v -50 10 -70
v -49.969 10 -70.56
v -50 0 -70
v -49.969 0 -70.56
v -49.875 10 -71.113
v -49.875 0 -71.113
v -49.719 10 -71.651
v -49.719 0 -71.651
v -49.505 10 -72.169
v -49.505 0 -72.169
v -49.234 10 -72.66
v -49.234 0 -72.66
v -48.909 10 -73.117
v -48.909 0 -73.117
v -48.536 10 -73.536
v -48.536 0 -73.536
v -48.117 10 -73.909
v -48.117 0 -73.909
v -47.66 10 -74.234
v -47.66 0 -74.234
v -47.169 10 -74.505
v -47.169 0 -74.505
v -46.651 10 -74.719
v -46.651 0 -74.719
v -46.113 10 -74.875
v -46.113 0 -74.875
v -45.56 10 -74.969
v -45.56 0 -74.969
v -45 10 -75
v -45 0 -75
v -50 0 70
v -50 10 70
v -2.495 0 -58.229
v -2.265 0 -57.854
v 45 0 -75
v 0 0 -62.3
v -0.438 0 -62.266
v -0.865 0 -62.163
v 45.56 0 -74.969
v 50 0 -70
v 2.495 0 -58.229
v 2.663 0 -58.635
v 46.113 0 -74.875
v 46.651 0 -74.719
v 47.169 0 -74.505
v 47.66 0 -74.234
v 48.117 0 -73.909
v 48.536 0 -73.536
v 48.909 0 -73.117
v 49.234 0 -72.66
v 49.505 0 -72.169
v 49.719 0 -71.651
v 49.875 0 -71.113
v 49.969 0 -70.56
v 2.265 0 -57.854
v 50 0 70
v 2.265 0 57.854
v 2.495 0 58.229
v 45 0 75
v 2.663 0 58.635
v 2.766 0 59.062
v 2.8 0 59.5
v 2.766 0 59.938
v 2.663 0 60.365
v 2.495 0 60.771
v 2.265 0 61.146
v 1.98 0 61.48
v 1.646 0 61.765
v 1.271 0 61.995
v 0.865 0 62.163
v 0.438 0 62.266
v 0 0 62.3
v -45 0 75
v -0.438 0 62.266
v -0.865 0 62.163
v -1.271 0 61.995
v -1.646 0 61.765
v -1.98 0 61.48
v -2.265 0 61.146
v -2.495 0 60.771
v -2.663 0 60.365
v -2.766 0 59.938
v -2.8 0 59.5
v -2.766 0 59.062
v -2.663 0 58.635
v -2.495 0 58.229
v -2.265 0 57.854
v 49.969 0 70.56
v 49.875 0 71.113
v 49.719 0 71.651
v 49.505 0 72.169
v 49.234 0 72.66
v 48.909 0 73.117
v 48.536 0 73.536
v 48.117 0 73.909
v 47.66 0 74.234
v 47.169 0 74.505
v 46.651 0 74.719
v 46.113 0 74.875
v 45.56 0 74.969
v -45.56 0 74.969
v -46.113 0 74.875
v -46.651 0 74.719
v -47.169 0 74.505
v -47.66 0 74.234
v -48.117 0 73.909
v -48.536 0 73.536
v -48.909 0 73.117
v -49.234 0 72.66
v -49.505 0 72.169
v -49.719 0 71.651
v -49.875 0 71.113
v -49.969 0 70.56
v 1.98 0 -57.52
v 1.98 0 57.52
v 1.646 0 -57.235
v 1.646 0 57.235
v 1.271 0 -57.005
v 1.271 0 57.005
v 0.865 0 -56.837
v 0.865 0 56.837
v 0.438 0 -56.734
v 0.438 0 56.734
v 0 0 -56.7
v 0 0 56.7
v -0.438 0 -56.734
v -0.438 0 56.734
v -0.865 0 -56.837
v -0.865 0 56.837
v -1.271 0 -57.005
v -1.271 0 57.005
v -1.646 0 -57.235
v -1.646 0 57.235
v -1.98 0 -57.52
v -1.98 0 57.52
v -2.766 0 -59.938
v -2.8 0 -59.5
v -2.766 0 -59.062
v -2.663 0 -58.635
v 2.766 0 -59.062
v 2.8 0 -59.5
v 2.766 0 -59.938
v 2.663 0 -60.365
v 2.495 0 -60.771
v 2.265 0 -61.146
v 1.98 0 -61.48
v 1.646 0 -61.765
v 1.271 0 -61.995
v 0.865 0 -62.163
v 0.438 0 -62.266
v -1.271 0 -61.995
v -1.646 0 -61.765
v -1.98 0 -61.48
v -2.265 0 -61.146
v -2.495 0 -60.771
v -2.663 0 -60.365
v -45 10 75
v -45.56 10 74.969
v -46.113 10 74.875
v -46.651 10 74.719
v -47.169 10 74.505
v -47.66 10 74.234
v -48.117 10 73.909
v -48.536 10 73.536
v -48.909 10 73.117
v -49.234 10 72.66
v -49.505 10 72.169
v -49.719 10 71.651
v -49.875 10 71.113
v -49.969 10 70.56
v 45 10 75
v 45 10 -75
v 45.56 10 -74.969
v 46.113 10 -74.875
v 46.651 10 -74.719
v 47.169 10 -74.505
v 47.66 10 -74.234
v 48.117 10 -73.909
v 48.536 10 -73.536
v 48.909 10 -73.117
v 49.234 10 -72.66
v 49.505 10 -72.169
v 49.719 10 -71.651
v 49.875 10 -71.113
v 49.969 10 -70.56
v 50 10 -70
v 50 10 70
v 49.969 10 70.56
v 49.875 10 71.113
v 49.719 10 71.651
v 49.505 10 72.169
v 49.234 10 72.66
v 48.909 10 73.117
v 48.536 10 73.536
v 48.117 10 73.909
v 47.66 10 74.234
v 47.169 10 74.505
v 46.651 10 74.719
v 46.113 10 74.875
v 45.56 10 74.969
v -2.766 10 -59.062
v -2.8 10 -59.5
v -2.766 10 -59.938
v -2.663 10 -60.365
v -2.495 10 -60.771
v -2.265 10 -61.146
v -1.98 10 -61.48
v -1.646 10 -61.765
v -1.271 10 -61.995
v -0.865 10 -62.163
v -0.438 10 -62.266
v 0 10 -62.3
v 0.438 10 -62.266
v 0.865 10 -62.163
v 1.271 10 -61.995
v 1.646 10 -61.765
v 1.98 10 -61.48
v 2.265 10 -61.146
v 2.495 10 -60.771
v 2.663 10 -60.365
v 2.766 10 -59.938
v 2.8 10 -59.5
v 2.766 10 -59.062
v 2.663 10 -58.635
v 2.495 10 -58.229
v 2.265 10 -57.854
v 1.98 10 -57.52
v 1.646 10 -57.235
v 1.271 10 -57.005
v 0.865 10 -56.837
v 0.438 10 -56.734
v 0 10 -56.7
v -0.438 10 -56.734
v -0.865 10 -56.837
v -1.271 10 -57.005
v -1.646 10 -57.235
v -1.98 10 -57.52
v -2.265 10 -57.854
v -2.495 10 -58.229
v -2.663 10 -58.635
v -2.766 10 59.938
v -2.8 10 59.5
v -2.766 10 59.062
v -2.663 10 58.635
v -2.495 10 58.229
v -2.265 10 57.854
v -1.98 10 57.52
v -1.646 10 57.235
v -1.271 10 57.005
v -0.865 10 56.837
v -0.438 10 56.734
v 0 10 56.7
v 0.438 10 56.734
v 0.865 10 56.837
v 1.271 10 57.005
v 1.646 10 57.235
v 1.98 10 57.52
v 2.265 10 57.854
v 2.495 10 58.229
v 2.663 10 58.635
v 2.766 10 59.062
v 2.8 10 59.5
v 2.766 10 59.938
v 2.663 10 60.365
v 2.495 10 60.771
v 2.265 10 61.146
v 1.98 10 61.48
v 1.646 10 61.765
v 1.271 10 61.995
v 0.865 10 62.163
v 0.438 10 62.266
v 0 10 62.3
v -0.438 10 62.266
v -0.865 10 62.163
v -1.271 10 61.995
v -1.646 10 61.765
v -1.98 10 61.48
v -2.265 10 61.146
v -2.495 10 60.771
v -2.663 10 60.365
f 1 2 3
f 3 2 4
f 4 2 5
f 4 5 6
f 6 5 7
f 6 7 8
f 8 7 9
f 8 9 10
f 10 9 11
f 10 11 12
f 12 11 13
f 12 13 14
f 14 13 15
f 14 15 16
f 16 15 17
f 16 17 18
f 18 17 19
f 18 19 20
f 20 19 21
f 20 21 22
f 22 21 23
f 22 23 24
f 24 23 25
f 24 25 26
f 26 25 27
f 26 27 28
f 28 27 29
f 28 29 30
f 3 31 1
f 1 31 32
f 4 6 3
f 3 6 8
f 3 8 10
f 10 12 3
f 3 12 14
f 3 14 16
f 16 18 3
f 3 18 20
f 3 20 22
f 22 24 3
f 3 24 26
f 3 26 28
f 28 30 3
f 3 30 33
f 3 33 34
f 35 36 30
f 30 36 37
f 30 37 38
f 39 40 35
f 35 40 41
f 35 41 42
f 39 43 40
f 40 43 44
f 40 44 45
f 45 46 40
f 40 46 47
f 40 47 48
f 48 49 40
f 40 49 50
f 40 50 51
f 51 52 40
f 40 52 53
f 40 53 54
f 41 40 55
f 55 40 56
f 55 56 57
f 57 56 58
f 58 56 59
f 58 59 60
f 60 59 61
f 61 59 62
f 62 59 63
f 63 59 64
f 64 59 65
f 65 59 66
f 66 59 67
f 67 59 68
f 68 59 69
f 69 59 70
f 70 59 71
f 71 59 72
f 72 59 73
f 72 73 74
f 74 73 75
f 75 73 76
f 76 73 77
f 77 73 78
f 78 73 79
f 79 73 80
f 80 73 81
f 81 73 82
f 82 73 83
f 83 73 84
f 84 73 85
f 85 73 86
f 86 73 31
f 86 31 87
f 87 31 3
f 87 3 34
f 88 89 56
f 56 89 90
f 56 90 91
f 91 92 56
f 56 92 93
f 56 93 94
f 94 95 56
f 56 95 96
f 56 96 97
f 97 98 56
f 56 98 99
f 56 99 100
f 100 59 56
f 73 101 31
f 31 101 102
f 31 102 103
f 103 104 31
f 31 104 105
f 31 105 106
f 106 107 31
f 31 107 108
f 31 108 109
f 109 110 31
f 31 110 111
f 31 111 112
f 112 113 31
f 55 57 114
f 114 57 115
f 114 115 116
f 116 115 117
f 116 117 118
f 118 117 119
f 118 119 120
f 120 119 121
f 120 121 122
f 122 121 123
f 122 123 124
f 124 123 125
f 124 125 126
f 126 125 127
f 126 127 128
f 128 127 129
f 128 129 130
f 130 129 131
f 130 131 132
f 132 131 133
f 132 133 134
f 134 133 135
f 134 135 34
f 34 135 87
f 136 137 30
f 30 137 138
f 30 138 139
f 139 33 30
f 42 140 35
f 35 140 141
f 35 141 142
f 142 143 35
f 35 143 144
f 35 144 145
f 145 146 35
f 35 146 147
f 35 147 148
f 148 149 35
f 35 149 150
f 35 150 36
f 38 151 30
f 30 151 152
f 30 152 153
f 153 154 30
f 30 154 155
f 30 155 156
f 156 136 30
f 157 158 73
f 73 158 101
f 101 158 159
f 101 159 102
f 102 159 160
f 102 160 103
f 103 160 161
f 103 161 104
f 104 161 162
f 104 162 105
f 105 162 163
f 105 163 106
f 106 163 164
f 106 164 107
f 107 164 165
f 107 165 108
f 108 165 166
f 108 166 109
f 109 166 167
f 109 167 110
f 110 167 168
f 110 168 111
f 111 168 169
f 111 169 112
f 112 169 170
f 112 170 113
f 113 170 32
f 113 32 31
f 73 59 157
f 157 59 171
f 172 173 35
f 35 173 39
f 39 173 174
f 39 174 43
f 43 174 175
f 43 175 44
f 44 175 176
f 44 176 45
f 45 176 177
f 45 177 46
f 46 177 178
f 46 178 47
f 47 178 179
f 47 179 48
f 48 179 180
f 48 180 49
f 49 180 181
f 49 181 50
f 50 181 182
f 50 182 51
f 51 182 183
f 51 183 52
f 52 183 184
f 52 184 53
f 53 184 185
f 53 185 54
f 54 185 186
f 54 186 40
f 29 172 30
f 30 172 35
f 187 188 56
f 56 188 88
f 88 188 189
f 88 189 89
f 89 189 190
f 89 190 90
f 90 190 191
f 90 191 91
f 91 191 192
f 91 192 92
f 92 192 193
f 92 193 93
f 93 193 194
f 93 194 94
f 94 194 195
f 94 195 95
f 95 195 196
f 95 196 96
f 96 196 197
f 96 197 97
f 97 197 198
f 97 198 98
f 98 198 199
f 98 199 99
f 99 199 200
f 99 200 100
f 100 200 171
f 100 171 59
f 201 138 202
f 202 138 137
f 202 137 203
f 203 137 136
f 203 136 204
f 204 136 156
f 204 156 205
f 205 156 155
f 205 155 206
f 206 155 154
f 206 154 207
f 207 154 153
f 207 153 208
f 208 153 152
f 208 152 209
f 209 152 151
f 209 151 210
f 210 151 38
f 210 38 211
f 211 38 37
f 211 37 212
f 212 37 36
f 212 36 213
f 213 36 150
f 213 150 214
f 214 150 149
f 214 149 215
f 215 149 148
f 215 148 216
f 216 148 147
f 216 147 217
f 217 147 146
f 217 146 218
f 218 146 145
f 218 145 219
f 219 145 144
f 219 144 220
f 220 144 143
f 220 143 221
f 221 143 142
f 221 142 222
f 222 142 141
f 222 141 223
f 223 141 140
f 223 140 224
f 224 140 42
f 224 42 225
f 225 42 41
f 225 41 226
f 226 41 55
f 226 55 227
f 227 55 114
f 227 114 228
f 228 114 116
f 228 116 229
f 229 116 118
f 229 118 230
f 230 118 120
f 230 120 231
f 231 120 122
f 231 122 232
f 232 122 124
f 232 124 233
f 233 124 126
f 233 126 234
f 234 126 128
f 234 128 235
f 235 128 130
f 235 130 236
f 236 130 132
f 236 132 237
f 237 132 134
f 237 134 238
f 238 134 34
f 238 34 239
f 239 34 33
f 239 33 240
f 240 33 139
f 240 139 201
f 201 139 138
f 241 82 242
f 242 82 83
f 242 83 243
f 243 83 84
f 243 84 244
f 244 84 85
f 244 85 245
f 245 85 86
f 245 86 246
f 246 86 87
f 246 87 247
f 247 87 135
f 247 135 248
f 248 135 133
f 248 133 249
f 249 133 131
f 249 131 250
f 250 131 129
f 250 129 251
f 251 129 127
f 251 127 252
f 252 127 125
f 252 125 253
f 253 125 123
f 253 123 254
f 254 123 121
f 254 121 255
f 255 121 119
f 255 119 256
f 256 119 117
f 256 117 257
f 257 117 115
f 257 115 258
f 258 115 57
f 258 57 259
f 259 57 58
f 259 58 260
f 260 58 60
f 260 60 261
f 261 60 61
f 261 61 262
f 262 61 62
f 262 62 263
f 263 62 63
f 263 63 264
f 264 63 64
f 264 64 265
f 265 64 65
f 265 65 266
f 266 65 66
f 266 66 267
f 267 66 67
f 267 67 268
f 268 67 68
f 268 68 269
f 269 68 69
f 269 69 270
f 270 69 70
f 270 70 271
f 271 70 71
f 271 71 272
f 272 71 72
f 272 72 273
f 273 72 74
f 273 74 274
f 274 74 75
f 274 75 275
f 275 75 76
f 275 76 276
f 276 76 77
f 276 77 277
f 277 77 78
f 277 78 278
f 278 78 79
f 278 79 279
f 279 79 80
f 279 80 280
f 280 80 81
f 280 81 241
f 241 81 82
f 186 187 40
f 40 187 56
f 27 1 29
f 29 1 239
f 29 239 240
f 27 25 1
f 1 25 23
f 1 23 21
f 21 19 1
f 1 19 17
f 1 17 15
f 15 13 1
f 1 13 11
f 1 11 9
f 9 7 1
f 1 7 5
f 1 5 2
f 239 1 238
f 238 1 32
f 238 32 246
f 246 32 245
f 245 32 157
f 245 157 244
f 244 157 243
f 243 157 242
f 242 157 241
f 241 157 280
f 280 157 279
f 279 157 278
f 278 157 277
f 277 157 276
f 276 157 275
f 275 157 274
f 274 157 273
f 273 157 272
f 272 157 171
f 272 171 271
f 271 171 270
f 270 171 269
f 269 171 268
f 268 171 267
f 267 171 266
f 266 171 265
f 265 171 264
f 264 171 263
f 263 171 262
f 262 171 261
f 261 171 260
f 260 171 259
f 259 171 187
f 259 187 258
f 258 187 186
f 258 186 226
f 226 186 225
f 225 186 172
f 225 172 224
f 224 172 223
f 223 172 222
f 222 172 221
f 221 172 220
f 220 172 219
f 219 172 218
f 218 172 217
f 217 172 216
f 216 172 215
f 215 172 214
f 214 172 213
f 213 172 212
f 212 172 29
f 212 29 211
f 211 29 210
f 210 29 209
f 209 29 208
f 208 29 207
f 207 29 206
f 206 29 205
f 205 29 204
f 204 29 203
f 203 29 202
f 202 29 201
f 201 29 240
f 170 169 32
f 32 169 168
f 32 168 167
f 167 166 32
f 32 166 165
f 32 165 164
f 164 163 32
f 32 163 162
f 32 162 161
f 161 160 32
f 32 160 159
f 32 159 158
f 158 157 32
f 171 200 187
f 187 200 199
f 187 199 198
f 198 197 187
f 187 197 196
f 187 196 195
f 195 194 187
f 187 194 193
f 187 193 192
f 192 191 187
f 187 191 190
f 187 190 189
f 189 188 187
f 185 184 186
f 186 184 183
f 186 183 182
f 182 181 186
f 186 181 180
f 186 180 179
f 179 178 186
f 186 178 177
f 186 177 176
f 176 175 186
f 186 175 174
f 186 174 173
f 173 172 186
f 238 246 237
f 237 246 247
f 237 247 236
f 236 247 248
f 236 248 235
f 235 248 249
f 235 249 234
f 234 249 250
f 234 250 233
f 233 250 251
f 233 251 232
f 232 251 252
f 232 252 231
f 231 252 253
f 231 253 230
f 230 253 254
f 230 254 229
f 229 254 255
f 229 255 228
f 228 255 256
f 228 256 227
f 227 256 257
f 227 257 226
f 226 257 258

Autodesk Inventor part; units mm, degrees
ref_plane "YZ Plane" through (0, 0, 0) normal (1, 0, 0) x (0, 1, 0)
ref_plane "XZ Plane" through (0, 0, 0) normal (0, 1, 0) x (-1, 0, 0)
ref_plane "XY Plane" through (0, 0, 0) normal (0, 0, 1) x (1, 0, 0)
sketch "Sketch1" plane through (0, 0, 0) normal (0, 1, 0) x (-1, 0, 0)
  line L0 (50, 75) -> (-50, 75)
  line L1 (-50, 75) -> (-50, -75)
  line L2 (-50, -75) -> (50, -75)
  line L3 (50, -75) -> (50, 75)
  line L4 (50, 75) -> (-50, -75) construction
  line L5 (-50, 75) -> (50, -75) construction
  circle A0 centre (0, 59.5) radius 2.8
  line L6 (0, 0) -> (50, 0) construction
  circle A1 centre (0, -59.5) radius 2.8
  dimension "d0" = 150
  dimension "d1" = 100
  dimension "d2" = 59.5
  dimension "d3" = 5.6
extrude "Extrusion1" add sketch "Sketch1" along normal blind 10
fillet "Fillet1" radius 5 4 edges at (50, 5, 75) (50, 5, -75) (-50, 5, 75) (-50, 5, -75)
properties part number "Base"
